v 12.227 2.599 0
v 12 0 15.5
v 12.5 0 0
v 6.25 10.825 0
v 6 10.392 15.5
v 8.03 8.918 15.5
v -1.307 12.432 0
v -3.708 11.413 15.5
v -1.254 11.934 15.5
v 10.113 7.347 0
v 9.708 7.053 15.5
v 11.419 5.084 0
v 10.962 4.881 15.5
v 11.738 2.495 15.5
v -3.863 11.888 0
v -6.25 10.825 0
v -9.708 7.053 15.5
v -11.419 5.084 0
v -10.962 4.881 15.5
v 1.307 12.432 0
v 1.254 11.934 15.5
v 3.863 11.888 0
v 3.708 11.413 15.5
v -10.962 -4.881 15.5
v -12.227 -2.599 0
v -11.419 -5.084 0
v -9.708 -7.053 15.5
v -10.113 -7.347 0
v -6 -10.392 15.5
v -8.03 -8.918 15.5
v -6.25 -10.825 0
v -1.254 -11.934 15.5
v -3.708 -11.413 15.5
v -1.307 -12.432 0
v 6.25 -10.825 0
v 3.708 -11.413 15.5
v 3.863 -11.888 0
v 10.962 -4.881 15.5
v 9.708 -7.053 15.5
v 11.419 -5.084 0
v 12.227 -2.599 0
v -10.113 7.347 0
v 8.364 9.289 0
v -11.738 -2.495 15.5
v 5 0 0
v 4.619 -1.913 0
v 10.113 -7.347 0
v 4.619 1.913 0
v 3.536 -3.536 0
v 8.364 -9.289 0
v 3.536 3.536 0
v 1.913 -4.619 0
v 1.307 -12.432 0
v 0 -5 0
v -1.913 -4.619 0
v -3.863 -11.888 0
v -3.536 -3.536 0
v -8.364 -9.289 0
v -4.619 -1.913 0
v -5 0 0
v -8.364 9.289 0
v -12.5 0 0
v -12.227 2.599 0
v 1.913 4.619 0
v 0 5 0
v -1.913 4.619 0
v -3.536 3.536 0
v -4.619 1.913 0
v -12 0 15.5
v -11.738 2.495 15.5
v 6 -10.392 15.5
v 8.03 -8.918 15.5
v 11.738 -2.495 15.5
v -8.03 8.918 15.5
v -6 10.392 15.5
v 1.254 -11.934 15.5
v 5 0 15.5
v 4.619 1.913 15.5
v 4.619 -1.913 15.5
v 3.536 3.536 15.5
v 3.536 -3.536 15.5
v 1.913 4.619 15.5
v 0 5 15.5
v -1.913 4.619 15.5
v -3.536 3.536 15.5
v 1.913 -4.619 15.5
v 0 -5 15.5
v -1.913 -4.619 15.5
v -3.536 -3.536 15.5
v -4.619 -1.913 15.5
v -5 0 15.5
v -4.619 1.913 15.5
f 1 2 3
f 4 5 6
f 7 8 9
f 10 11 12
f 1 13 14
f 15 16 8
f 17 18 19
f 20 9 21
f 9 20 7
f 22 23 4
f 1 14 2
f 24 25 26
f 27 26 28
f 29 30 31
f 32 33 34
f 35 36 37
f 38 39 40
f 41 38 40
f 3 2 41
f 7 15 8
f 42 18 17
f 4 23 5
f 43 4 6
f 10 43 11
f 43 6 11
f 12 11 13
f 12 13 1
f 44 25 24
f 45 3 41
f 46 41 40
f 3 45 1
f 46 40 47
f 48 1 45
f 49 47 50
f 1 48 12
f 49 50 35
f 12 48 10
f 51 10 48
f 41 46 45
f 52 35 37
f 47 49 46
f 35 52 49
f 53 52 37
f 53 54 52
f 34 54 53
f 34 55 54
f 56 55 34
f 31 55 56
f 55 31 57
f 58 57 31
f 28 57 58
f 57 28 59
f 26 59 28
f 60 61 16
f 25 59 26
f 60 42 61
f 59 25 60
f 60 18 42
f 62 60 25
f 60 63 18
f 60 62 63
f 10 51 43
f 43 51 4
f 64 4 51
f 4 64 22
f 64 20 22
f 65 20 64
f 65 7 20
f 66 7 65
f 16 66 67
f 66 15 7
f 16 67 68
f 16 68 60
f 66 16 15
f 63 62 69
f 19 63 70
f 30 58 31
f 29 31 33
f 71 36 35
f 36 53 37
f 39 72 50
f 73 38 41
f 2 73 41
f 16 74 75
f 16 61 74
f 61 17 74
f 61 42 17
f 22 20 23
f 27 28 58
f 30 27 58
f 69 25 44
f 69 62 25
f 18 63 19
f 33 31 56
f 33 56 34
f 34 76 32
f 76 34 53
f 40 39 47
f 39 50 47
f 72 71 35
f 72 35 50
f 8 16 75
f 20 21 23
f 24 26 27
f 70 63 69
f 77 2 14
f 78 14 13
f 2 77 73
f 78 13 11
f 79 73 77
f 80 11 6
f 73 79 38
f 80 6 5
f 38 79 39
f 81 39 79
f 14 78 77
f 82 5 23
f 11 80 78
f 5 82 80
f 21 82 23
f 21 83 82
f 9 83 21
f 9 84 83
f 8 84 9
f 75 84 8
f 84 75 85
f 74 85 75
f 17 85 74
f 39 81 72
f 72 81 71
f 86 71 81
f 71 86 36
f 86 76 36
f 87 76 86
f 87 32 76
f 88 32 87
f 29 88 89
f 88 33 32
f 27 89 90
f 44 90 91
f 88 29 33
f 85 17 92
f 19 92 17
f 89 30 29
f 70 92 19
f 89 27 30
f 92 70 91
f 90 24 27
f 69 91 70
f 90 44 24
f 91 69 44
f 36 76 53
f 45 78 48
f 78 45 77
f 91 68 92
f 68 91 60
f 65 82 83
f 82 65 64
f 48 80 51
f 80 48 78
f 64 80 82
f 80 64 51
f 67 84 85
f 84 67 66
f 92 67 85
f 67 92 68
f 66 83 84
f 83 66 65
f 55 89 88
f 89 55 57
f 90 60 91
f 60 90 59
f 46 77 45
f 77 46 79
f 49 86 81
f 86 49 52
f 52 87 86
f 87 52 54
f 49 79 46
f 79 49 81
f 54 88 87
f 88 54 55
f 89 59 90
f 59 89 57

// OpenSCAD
difference() {
    cylinder(h=15.5, r1=25/2, r2=24/2, center=false);
    cylinder(h=15.5, r1=10/2, r2=10/2, center=false);
}
